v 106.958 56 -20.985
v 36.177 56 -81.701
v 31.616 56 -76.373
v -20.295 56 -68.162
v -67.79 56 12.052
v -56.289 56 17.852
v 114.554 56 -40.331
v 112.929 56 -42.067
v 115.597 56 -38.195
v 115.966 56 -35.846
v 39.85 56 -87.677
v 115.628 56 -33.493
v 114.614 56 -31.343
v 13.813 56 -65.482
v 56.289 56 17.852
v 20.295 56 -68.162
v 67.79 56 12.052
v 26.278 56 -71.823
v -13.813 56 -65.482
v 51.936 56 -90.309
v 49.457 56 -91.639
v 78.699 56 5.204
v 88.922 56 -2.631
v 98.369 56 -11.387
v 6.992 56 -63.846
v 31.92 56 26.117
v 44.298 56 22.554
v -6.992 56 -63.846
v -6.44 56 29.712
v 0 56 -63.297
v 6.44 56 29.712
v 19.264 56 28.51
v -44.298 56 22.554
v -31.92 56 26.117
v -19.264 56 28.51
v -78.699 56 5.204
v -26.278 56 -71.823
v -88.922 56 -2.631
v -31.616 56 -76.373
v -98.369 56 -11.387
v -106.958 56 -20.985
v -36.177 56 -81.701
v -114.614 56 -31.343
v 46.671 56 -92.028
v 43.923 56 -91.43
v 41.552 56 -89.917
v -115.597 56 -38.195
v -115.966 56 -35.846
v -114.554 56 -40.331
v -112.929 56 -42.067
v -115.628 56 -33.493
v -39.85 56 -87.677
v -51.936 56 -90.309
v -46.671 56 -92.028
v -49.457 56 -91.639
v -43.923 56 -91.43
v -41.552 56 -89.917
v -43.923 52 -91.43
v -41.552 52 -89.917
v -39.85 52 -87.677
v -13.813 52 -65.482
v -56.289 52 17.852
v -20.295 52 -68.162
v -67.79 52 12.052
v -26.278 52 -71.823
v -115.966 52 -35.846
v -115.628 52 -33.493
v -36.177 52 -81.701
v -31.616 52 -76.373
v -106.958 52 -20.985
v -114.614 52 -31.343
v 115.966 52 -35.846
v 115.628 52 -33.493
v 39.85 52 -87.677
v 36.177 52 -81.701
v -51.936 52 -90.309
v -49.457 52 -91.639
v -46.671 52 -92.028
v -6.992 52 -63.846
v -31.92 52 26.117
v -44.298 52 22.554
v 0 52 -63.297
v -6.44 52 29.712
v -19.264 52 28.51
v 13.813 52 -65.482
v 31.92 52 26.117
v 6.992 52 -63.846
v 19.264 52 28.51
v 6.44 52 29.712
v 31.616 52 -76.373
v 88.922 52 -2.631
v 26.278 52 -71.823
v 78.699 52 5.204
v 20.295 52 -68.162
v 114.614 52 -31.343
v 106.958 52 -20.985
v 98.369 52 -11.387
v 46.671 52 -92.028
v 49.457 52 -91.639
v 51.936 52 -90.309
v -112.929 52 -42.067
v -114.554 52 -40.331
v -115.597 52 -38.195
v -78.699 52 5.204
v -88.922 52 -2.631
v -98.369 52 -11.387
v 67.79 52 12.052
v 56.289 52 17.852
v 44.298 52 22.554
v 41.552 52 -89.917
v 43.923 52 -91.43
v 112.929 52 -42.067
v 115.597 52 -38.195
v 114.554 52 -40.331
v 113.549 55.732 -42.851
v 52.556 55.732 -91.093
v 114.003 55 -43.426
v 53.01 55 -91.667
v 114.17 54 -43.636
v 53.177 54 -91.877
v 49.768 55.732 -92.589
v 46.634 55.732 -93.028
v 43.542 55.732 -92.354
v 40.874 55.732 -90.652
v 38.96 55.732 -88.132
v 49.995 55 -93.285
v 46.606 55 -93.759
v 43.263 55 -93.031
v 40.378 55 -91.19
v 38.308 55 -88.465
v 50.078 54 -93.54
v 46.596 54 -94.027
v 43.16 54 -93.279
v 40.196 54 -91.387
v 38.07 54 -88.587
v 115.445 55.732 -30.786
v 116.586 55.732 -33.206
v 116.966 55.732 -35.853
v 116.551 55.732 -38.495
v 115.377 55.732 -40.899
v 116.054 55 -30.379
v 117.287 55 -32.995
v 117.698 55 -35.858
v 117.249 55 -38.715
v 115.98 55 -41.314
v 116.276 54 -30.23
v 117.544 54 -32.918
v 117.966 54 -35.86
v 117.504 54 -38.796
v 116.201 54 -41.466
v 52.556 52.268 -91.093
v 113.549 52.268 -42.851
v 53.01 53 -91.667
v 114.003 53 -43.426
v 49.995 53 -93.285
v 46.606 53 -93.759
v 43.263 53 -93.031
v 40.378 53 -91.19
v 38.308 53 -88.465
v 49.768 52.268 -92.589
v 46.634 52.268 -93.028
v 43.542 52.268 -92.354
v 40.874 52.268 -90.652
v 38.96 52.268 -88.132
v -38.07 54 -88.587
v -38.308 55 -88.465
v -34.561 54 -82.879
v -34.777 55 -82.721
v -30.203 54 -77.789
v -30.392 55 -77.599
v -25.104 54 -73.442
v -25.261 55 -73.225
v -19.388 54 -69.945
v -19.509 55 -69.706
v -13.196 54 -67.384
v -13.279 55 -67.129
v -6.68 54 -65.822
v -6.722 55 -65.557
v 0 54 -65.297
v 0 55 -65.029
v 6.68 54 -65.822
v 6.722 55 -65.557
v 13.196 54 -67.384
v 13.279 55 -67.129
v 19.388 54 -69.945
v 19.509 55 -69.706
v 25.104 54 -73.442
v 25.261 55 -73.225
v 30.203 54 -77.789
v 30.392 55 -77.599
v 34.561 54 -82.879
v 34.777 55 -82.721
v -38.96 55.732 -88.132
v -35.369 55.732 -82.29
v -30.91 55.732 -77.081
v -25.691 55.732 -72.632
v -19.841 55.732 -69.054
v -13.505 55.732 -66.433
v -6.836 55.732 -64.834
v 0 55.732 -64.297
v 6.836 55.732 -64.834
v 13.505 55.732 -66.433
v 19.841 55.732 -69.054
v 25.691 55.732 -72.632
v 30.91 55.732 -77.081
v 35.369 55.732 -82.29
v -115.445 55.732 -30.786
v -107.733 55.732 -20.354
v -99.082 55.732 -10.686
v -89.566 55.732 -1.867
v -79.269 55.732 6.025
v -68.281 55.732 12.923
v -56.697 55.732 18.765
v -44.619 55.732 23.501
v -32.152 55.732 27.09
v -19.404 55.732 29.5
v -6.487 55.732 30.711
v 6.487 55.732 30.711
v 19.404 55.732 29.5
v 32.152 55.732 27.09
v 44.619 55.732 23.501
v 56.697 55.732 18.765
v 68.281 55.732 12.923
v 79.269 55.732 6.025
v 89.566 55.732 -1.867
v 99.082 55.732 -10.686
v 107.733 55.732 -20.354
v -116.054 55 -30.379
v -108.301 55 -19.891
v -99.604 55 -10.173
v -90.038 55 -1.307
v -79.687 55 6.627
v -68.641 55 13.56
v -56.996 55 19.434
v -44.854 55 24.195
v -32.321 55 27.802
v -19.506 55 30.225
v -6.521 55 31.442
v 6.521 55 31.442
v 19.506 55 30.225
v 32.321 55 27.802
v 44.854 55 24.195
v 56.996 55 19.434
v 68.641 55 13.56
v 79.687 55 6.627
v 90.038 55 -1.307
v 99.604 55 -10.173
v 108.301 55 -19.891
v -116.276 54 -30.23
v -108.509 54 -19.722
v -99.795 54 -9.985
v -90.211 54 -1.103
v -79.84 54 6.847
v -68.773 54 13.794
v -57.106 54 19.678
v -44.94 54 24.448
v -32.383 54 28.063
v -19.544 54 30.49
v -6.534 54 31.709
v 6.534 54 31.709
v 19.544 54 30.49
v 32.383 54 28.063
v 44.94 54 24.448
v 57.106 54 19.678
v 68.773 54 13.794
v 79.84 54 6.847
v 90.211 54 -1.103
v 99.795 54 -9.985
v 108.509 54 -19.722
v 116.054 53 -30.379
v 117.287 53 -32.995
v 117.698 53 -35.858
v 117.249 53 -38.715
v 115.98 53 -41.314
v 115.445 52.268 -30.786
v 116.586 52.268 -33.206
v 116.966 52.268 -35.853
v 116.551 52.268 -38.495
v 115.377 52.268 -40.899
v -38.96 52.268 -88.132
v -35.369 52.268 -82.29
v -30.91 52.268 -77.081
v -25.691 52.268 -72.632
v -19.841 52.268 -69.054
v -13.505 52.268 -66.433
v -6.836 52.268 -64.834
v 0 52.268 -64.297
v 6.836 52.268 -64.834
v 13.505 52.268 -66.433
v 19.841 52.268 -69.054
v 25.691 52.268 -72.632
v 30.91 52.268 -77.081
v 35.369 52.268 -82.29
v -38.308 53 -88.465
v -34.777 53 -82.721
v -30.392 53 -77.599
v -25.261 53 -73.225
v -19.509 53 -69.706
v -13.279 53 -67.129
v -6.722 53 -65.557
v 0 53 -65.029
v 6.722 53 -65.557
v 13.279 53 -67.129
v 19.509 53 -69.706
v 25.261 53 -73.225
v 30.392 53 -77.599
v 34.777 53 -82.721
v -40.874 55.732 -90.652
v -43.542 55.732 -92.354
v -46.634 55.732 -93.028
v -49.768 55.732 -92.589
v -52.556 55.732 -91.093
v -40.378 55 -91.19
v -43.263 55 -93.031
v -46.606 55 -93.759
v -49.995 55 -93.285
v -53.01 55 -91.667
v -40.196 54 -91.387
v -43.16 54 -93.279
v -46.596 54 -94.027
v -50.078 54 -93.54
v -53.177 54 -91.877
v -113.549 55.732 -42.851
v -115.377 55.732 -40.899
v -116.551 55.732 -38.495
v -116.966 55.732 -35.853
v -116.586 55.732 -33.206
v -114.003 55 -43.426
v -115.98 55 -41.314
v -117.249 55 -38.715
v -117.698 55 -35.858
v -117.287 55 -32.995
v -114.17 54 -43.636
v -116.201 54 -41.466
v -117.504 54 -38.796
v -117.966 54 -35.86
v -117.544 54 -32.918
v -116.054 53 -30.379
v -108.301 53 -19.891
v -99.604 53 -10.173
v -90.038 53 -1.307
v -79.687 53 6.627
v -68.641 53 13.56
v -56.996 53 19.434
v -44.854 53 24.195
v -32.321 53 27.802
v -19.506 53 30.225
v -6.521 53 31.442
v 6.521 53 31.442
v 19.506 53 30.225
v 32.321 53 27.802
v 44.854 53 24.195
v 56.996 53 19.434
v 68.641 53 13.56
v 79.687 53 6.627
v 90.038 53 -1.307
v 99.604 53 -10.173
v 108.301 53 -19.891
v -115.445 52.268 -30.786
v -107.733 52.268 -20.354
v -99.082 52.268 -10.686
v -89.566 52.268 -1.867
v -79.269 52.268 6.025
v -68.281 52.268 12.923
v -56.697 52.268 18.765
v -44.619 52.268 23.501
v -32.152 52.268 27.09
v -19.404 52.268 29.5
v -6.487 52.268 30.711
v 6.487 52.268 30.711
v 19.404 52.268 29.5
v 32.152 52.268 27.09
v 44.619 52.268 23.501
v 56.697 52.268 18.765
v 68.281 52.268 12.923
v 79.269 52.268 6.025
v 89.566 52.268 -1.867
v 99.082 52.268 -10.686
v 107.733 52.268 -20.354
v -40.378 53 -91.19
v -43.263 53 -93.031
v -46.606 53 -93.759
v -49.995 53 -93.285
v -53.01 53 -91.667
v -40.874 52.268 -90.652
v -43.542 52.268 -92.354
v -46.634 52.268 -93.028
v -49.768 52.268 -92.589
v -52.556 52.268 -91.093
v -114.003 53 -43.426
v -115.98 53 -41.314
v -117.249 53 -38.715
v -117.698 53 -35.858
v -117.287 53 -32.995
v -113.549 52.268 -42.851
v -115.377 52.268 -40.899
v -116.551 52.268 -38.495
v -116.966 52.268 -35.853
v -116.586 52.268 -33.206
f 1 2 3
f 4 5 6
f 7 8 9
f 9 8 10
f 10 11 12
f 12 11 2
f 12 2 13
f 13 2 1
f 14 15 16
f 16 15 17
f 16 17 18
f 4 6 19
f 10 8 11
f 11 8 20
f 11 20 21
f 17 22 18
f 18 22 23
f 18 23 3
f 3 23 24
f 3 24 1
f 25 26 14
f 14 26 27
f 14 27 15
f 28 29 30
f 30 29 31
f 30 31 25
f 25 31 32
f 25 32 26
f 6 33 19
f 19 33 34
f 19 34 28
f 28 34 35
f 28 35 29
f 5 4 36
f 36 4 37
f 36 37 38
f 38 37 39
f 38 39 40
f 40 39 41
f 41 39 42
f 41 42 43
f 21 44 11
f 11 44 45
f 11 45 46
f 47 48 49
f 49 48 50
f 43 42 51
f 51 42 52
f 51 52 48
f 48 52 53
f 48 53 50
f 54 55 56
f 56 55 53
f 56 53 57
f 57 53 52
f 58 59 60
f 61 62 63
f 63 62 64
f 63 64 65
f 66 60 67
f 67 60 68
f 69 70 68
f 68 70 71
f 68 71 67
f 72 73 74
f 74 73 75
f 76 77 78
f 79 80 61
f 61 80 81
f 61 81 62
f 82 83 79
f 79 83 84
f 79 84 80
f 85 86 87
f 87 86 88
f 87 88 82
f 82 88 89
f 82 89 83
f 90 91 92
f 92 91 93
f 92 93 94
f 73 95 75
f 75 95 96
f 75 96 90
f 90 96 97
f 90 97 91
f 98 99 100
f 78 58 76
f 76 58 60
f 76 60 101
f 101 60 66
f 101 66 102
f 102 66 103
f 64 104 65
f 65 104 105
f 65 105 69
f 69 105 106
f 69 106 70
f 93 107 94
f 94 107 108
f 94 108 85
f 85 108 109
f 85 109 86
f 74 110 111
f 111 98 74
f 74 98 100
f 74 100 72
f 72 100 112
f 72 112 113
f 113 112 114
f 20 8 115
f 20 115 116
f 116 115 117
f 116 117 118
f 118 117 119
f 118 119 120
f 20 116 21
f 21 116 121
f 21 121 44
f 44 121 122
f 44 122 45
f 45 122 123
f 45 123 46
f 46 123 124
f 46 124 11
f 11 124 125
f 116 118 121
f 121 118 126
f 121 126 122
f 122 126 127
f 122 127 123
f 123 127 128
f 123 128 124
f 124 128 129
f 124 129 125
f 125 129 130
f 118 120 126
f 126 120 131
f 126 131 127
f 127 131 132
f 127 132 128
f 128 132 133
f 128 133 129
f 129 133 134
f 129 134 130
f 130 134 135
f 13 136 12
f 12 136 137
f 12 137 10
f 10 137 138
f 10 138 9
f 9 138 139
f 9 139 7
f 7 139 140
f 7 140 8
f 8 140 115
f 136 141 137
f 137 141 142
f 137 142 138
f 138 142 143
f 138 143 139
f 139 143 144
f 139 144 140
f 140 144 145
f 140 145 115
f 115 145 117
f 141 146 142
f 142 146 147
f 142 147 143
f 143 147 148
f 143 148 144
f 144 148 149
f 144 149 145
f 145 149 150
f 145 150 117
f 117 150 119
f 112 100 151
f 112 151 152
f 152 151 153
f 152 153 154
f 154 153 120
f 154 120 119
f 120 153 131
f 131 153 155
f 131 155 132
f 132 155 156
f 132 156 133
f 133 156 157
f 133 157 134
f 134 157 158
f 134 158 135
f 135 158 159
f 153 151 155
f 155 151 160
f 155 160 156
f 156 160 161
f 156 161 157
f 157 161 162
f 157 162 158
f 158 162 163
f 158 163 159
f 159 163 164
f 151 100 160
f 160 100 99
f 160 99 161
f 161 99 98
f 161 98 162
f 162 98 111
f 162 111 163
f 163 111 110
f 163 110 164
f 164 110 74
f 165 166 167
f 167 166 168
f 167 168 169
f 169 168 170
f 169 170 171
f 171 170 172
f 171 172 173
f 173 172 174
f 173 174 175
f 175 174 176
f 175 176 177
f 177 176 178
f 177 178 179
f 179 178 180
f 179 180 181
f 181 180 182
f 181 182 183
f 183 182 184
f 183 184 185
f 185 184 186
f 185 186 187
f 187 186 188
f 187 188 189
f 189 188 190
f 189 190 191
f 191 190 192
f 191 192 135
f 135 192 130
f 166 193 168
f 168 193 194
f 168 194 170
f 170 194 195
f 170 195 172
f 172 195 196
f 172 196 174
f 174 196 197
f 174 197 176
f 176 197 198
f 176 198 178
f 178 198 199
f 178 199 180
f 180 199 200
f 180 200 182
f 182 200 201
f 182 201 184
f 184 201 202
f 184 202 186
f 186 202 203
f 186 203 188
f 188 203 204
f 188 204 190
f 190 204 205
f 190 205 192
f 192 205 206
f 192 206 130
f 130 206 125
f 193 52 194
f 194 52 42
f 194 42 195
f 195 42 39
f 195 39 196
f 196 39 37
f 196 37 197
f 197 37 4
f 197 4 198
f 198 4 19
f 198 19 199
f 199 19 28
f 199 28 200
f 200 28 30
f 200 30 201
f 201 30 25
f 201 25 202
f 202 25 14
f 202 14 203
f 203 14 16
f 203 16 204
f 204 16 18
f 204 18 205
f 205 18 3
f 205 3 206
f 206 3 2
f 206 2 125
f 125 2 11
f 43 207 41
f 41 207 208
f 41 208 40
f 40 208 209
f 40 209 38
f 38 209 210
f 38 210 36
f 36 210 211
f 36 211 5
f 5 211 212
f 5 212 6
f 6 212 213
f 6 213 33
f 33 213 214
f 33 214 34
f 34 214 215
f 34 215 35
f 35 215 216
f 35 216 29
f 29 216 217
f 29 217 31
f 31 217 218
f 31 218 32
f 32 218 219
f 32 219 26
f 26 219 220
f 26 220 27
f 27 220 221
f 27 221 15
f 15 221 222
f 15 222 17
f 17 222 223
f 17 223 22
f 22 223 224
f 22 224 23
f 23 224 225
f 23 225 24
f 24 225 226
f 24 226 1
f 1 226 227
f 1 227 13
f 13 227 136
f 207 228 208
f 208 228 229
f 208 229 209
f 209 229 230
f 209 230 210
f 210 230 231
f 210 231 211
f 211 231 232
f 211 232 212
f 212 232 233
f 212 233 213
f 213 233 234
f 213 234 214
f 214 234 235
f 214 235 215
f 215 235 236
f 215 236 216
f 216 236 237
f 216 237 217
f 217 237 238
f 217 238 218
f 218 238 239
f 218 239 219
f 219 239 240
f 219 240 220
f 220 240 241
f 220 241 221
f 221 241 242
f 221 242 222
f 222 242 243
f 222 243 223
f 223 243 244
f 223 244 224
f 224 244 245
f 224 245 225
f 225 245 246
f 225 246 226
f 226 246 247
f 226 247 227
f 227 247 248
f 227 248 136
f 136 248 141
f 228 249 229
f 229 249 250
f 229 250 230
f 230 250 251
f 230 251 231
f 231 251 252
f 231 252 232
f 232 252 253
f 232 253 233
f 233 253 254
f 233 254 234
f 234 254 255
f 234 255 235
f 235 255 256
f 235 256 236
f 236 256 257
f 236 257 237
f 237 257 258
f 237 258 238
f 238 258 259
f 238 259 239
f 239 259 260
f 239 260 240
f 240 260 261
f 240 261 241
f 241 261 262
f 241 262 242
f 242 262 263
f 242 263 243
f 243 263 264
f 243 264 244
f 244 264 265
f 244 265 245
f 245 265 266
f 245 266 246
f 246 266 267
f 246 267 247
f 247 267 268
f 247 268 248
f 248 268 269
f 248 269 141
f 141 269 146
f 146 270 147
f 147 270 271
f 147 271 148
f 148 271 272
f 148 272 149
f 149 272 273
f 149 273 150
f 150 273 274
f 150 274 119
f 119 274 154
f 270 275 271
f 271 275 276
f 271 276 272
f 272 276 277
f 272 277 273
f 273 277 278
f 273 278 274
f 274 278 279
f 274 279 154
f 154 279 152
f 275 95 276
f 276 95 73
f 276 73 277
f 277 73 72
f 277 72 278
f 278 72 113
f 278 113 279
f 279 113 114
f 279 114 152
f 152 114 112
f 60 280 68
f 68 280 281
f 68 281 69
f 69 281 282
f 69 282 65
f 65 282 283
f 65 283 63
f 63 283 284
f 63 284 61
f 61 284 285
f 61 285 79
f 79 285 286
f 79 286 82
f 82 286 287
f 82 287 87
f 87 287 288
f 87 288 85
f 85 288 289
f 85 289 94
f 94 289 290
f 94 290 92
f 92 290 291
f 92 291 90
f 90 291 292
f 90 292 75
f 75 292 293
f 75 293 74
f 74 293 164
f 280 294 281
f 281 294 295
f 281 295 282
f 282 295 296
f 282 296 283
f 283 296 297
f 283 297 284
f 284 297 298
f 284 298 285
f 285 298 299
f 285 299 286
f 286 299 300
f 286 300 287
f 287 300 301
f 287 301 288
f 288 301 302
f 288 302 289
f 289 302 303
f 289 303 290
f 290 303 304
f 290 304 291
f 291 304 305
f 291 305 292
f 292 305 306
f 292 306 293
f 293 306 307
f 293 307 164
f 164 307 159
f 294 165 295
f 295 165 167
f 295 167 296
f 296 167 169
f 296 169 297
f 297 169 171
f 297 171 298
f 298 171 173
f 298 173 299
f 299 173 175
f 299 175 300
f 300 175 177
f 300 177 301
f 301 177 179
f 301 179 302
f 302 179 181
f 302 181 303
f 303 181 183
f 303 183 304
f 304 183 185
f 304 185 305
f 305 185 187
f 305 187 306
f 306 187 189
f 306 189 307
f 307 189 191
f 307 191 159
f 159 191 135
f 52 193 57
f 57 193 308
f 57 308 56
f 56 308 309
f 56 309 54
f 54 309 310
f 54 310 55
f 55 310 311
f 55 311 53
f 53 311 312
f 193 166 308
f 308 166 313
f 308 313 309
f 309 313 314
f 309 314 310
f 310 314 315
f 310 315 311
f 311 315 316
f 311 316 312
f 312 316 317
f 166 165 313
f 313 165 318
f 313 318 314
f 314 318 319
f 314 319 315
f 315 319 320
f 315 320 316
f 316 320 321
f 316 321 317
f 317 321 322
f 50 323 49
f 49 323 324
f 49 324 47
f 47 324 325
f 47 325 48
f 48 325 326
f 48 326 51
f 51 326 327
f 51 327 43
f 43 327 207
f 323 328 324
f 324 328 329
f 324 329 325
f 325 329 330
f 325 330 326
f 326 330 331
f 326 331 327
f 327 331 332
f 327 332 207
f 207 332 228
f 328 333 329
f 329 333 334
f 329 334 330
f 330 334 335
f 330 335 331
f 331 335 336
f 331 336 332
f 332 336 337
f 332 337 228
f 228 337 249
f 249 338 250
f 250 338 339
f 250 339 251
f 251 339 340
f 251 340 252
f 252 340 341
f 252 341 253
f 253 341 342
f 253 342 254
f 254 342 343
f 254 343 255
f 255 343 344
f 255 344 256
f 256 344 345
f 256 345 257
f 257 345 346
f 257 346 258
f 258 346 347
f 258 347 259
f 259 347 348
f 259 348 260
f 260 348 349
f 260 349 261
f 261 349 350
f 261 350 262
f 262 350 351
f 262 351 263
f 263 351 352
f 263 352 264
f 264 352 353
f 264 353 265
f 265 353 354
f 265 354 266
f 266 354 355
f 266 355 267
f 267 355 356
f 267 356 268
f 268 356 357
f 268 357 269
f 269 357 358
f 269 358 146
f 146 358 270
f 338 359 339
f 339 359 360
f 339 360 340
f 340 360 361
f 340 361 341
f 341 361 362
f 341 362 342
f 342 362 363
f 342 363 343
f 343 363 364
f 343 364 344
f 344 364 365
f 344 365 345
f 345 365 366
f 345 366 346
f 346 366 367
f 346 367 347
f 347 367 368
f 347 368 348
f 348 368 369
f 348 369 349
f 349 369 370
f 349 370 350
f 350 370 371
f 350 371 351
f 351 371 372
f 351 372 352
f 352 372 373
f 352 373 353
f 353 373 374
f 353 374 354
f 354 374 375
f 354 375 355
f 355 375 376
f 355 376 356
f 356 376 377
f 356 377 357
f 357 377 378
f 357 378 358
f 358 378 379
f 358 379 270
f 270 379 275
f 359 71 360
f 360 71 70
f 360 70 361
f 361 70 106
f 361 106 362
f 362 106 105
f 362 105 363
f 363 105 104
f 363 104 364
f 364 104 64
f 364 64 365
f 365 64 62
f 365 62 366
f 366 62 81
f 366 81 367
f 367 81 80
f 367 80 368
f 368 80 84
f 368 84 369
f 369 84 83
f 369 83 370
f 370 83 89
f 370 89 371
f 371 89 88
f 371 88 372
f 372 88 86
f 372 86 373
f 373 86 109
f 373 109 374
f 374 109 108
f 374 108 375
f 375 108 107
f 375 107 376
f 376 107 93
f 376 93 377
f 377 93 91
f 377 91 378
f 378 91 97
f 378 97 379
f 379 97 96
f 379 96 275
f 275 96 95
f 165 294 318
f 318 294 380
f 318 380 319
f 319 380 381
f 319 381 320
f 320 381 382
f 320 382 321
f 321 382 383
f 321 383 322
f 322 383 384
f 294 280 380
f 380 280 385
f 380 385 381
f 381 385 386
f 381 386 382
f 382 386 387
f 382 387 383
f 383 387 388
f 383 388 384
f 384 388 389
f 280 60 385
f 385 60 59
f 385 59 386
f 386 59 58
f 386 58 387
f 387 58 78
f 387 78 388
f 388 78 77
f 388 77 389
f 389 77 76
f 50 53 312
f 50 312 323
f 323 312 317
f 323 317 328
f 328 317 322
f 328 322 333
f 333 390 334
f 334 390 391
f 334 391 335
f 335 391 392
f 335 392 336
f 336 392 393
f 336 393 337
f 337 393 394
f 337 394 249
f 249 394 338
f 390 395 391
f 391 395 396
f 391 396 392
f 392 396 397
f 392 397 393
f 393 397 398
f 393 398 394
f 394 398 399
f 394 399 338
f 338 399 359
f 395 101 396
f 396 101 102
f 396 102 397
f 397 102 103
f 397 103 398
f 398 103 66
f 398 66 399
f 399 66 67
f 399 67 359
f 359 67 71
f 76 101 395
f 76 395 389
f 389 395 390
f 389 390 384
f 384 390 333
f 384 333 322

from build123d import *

# Parameters (mm, degrees)
BOSS_EXTRUDE1_DEPTH = 4
FILLET1_R           = 2


with BuildPart() as part:
    # Sketch19 → Boss-Extrude1 (new body)
    with BuildSketch(Plane(origin=(0, 52, 0), x_dir=(1, 0, 0), z_dir=(0, 1, 0))):
        with BuildLine():
            Line((-53.176611718, 91.877251824), (-114.16950438, 43.635670657))
            ThreePointArc((-114.16950438, 43.635670657), (-117.84473403, 37.344982568), (-116.276319478, 30.230198988))
            ThreePointArc((-116.276319478, 30.230198988), (0, -31.862084944), (116.276319478, 30.230198988))
            ThreePointArc((116.276319478, 30.230198988), (117.84473403, 37.344982568), (114.16950438, 43.635670657))
            Line((114.16950438, 43.635670657), (53.176611718, 91.877251824))
            ThreePointArc((53.176611718, 91.877251824), (44.845069921, 93.804963904), (38.069768681, 88.587114185))
            ThreePointArc((38.069768681, 88.587114185), (0, 65.296707731), (-38.069768681, 88.587114185))
            ThreePointArc((-38.069768681, 88.587114185), (-44.845069921, 93.804963904), (-53.176611718, 91.877251824))
        make_face()
    extrude(amount=BOSS_EXTRUDE1_DEPTH)

    # Fillet1
    fillet1_edges = [part.edges().sort_by_distance(p)[0] for p in [
        (-83.673058049, 52, -67.75646124),
        (-117.84473403, 52, -37.344982568),
        (0, 52, 31.862084944),
        (117.84473403, 52, -37.344982568),
        (83.673058049, 52, -67.75646124),
        (44.845069921, 52, -93.804963904),
        (0, 52, -65.296707731),
        (-44.845069921, 52, -93.804963904),
        (0, 56, -65.296707731),
        (44.845069921, 56, -93.804963904),
        (83.673058049, 56, -67.75646124),
        (117.84473403, 56, -37.344982568),
        (0, 56, 31.862084944),
        (-117.84473403, 56, -37.344982568),
        (-83.673058049, 56, -67.75646124),
        (-44.845069921, 56, -93.804963904),
    ]]
    fillet(fillet1_edges, radius=FILLET1_R - 0.0001)  # a hair under: the kernel refuses the full size


solid = part.part
